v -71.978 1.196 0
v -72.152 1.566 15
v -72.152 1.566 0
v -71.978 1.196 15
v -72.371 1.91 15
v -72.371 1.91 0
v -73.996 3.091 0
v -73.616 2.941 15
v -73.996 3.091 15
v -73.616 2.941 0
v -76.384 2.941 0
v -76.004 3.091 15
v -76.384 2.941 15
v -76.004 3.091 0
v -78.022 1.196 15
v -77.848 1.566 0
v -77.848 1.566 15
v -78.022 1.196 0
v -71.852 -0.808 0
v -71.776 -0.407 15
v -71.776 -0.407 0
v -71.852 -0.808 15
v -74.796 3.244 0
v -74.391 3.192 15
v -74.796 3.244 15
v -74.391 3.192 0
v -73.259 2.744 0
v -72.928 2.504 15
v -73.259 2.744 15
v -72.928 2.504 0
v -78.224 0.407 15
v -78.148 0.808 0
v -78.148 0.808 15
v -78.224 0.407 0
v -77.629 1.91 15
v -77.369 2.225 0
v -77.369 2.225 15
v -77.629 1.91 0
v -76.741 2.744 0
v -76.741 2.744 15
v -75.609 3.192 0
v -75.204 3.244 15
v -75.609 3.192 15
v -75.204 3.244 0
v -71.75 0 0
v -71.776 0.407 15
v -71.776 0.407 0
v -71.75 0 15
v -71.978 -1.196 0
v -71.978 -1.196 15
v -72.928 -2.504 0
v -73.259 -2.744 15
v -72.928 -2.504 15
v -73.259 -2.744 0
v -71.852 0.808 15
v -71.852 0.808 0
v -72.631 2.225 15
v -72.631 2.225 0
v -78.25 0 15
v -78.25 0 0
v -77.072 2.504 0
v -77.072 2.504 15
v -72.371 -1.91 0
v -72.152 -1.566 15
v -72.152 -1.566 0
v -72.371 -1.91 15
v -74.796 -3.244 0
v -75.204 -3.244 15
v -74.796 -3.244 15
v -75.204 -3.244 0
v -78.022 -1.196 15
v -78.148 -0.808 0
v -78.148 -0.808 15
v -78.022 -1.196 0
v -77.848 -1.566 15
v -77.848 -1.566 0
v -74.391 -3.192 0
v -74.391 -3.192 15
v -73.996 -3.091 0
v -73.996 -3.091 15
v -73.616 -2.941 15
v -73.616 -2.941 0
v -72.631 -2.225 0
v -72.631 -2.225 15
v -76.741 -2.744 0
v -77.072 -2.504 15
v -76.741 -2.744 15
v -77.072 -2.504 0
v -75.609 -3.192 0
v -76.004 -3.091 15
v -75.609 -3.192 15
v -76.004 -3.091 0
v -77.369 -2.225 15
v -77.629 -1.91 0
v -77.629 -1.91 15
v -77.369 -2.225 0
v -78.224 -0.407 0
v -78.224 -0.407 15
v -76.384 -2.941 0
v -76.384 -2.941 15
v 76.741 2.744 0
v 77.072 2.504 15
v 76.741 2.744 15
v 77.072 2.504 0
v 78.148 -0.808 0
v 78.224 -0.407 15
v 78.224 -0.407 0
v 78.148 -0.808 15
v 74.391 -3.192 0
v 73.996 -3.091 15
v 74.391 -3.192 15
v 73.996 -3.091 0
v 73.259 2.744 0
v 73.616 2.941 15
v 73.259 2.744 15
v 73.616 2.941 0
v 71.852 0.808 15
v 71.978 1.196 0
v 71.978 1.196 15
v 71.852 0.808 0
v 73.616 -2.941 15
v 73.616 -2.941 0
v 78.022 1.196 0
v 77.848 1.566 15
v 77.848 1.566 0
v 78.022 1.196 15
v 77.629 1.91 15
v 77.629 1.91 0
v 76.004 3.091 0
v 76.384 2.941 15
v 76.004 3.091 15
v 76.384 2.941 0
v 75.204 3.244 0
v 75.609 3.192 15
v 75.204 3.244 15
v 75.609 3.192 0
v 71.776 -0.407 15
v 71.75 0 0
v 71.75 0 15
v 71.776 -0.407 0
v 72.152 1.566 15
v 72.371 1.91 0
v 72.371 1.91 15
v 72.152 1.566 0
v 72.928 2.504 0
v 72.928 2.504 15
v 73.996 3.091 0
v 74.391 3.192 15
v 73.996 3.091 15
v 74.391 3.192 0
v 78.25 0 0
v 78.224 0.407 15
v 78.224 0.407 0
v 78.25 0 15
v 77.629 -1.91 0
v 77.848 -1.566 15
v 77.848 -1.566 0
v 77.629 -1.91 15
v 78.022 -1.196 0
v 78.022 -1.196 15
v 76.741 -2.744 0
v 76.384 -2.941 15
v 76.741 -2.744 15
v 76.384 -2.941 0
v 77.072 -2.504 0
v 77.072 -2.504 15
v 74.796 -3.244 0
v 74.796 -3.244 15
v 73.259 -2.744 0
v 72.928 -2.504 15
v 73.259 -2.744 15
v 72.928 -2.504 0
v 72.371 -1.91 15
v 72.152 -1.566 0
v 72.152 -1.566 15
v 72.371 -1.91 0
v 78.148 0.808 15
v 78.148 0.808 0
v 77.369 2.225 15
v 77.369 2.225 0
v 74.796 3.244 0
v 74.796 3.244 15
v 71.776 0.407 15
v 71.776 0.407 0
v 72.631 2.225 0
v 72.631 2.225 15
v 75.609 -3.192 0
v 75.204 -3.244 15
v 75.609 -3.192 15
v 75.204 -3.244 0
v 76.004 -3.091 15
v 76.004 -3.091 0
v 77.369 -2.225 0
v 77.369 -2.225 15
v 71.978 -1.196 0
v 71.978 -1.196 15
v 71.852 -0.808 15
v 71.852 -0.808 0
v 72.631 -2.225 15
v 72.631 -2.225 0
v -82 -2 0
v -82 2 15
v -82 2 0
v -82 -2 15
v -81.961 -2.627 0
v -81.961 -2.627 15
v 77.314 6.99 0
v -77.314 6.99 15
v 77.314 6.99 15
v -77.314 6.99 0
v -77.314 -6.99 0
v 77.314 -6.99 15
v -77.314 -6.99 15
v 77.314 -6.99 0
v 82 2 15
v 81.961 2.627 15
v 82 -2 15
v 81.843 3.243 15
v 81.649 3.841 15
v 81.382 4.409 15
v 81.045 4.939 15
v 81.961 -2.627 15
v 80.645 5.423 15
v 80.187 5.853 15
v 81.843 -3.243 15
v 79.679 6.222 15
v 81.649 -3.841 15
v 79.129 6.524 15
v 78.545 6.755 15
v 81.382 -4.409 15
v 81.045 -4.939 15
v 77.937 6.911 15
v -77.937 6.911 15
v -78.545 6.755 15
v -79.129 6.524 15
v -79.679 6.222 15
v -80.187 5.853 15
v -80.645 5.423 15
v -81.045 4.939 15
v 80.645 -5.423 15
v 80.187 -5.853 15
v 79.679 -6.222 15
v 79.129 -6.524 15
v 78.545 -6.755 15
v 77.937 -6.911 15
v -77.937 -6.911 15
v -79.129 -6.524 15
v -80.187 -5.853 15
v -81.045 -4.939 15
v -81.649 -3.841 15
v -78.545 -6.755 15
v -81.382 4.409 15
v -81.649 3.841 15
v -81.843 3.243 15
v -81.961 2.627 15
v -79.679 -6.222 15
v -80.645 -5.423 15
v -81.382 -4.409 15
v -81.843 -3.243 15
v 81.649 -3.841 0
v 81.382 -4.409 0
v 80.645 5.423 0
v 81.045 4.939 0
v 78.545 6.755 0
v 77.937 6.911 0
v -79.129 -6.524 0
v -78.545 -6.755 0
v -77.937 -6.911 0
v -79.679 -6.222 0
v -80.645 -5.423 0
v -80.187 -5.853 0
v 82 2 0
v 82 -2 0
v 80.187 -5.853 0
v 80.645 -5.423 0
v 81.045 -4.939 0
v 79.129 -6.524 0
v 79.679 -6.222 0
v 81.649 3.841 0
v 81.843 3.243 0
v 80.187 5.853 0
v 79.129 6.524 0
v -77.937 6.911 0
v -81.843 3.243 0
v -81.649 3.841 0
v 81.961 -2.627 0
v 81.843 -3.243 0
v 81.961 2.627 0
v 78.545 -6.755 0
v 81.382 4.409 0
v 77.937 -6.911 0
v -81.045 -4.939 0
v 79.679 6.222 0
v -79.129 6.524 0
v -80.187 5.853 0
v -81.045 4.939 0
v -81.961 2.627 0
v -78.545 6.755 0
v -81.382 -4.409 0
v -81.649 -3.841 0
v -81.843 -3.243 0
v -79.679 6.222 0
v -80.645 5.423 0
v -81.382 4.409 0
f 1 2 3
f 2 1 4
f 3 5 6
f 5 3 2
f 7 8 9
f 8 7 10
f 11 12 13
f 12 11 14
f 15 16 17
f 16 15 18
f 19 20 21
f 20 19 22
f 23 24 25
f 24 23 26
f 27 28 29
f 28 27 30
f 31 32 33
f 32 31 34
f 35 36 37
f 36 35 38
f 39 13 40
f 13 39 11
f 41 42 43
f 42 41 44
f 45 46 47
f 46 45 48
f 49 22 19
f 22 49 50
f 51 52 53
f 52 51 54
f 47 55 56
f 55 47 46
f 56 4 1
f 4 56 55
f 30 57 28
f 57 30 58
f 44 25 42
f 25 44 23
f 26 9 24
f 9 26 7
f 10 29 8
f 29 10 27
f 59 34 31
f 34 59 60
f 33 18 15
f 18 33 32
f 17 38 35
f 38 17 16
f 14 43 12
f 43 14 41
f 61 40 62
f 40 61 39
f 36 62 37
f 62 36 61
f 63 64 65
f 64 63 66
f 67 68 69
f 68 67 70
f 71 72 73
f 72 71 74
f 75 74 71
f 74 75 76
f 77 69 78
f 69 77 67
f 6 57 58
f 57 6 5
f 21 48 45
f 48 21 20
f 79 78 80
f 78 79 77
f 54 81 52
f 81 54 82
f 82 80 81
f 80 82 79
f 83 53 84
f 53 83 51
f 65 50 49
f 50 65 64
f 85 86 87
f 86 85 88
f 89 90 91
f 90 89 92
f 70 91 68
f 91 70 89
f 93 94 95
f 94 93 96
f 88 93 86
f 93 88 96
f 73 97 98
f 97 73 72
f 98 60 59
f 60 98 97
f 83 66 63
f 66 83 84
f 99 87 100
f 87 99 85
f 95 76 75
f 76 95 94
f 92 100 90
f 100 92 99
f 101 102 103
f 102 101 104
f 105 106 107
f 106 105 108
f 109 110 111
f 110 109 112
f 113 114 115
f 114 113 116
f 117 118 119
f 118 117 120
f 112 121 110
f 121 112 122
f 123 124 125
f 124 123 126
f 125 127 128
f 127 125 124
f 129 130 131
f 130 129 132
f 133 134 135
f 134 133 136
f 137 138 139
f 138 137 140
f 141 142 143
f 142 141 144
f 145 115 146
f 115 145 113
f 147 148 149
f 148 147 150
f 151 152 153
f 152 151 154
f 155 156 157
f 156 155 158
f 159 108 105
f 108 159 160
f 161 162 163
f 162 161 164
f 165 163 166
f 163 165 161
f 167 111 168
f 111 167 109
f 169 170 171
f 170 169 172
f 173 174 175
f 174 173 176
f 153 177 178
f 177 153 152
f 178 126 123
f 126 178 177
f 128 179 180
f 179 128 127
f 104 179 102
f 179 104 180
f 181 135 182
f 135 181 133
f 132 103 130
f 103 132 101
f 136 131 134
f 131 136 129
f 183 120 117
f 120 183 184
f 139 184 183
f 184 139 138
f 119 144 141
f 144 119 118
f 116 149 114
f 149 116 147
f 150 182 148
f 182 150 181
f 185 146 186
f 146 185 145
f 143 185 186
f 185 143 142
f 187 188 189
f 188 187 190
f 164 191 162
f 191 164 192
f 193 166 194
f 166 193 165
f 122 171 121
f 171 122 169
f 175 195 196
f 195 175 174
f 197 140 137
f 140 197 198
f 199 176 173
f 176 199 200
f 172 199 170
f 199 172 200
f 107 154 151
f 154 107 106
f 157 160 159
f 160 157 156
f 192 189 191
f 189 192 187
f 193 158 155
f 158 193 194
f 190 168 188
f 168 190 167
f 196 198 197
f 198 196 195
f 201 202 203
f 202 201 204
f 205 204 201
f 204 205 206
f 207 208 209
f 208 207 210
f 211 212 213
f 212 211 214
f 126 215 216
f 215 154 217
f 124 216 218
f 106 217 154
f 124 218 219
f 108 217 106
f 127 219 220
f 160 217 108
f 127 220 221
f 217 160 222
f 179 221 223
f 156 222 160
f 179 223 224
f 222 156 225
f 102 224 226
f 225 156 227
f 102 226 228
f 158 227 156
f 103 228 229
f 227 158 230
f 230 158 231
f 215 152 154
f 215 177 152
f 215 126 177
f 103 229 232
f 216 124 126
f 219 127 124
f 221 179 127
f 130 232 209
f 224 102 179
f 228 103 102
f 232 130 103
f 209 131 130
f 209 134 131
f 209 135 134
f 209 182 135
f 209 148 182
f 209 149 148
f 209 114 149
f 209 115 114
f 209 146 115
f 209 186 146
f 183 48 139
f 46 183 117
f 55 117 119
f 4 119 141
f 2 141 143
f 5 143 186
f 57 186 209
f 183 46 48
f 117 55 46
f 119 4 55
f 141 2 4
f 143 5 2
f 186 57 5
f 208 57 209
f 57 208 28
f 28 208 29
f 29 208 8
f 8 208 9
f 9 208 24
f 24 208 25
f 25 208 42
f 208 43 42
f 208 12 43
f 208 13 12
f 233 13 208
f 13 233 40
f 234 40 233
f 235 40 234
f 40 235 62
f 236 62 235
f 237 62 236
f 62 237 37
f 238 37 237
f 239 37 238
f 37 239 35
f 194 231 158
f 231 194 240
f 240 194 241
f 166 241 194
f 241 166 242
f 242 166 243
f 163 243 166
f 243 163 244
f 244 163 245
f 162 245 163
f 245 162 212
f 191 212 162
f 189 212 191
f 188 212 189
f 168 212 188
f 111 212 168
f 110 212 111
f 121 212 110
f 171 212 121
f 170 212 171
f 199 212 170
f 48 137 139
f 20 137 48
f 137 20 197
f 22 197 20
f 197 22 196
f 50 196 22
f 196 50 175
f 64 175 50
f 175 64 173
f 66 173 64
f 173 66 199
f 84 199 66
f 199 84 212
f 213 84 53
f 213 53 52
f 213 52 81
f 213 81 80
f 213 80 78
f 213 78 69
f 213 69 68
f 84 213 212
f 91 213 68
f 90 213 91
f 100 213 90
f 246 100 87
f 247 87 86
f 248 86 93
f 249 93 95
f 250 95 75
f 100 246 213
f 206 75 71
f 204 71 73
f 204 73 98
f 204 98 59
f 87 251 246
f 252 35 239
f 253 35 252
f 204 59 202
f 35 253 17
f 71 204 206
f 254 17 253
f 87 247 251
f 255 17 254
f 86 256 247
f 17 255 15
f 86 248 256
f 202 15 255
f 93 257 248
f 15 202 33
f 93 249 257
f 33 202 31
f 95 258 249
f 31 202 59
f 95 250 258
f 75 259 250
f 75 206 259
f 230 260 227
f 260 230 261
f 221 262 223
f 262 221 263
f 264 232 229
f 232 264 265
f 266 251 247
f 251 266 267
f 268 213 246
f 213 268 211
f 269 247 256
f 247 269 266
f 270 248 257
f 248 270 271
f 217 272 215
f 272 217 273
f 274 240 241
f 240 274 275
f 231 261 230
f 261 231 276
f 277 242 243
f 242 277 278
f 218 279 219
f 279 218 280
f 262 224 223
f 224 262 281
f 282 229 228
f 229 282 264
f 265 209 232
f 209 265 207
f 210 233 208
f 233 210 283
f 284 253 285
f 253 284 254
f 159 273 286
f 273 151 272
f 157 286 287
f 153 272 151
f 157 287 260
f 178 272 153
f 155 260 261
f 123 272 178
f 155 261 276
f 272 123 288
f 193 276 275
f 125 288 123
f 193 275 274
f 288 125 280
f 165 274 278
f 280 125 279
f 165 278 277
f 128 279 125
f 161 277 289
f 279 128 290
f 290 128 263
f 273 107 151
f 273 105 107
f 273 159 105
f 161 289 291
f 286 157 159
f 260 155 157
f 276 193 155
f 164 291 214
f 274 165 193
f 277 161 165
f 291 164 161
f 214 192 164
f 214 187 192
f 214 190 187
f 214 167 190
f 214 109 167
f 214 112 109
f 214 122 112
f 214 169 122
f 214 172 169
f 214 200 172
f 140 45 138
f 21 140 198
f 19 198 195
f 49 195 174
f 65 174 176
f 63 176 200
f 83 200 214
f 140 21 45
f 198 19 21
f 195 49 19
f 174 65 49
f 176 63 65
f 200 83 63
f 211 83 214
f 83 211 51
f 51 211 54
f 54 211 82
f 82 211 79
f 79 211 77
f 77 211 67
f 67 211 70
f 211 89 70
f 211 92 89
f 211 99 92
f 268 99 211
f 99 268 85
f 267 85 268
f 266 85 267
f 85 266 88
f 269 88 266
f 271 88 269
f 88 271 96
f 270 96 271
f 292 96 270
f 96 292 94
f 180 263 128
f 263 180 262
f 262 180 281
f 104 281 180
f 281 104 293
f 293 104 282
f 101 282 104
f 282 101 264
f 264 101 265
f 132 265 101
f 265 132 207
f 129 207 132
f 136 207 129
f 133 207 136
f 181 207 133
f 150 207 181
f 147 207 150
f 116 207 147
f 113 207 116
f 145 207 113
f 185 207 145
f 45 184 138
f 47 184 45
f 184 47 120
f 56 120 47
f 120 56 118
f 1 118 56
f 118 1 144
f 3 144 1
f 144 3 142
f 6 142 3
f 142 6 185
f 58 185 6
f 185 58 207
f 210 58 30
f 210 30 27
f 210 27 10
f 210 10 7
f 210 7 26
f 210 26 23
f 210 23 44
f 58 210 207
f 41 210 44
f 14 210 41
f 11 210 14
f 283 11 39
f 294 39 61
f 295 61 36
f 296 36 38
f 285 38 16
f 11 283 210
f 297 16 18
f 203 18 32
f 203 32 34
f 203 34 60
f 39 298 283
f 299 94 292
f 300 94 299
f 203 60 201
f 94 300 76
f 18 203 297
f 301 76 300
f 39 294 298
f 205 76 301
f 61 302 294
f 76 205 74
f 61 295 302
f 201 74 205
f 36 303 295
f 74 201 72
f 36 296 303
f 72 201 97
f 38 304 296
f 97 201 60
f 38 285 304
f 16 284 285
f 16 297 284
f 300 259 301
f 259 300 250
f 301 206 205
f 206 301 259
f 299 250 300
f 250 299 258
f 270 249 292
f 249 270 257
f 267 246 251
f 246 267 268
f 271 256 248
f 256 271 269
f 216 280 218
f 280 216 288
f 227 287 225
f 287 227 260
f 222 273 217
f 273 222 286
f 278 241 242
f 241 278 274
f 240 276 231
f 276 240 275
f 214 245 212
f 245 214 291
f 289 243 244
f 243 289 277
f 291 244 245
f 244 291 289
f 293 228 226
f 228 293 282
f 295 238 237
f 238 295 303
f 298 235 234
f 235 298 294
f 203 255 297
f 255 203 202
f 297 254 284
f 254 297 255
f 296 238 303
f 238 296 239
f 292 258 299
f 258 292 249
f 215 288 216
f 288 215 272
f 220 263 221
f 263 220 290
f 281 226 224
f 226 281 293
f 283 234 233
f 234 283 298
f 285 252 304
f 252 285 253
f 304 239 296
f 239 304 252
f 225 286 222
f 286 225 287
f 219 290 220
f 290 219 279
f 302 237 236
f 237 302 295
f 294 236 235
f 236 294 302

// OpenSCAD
$fn = 50;


difference() {
	union() {
		hull() {
			translate(v = [-77.0000000000, 2.0000000000, 0]) {
				cylinder(h = 15, r = 5);
			}
			translate(v = [77.0000000000, 2.0000000000, 0]) {
				cylinder(h = 15, r = 5);
			}
			translate(v = [-77.0000000000, -2.0000000000, 0]) {
				cylinder(h = 15, r = 5);
			}
			translate(v = [77.0000000000, -2.0000000000, 0]) {
				cylinder(h = 15, r = 5);
			}
		}
	}
	union() {
		translate(v = [-75.0000000000, 0.0000000000, 0]) {
			cylinder(h = 15, r = 3.2500000000);
		}
		translate(v = [75.0000000000, 0.0000000000, 0]) {
			cylinder(h = 15, r = 3.2500000000);
		}
		translate(v = [-75.0000000000, 0.0000000000, 0]) {
			cylinder(h = 15, r = 1.8000000000);
		}
		translate(v = [75.0000000000, 0.0000000000, 0]) {
			cylinder(h = 15, r = 1.8000000000);
		}
		translate(v = [-75.0000000000, 0.0000000000, 0]) {
			cylinder(h = 15, r = 1.8000000000);
		}
		translate(v = [75.0000000000, 0.0000000000, 0]) {
			cylinder(h = 15, r = 1.8000000000);
		}
		translate(v = [-75.0000000000, 0.0000000000, 0]) {
			cylinder(h = 15, r = 1.8000000000);
		}
		translate(v = [75.0000000000, 0.0000000000, 0]) {
			cylinder(h = 15, r = 1.8000000000);
		}
	}
}
